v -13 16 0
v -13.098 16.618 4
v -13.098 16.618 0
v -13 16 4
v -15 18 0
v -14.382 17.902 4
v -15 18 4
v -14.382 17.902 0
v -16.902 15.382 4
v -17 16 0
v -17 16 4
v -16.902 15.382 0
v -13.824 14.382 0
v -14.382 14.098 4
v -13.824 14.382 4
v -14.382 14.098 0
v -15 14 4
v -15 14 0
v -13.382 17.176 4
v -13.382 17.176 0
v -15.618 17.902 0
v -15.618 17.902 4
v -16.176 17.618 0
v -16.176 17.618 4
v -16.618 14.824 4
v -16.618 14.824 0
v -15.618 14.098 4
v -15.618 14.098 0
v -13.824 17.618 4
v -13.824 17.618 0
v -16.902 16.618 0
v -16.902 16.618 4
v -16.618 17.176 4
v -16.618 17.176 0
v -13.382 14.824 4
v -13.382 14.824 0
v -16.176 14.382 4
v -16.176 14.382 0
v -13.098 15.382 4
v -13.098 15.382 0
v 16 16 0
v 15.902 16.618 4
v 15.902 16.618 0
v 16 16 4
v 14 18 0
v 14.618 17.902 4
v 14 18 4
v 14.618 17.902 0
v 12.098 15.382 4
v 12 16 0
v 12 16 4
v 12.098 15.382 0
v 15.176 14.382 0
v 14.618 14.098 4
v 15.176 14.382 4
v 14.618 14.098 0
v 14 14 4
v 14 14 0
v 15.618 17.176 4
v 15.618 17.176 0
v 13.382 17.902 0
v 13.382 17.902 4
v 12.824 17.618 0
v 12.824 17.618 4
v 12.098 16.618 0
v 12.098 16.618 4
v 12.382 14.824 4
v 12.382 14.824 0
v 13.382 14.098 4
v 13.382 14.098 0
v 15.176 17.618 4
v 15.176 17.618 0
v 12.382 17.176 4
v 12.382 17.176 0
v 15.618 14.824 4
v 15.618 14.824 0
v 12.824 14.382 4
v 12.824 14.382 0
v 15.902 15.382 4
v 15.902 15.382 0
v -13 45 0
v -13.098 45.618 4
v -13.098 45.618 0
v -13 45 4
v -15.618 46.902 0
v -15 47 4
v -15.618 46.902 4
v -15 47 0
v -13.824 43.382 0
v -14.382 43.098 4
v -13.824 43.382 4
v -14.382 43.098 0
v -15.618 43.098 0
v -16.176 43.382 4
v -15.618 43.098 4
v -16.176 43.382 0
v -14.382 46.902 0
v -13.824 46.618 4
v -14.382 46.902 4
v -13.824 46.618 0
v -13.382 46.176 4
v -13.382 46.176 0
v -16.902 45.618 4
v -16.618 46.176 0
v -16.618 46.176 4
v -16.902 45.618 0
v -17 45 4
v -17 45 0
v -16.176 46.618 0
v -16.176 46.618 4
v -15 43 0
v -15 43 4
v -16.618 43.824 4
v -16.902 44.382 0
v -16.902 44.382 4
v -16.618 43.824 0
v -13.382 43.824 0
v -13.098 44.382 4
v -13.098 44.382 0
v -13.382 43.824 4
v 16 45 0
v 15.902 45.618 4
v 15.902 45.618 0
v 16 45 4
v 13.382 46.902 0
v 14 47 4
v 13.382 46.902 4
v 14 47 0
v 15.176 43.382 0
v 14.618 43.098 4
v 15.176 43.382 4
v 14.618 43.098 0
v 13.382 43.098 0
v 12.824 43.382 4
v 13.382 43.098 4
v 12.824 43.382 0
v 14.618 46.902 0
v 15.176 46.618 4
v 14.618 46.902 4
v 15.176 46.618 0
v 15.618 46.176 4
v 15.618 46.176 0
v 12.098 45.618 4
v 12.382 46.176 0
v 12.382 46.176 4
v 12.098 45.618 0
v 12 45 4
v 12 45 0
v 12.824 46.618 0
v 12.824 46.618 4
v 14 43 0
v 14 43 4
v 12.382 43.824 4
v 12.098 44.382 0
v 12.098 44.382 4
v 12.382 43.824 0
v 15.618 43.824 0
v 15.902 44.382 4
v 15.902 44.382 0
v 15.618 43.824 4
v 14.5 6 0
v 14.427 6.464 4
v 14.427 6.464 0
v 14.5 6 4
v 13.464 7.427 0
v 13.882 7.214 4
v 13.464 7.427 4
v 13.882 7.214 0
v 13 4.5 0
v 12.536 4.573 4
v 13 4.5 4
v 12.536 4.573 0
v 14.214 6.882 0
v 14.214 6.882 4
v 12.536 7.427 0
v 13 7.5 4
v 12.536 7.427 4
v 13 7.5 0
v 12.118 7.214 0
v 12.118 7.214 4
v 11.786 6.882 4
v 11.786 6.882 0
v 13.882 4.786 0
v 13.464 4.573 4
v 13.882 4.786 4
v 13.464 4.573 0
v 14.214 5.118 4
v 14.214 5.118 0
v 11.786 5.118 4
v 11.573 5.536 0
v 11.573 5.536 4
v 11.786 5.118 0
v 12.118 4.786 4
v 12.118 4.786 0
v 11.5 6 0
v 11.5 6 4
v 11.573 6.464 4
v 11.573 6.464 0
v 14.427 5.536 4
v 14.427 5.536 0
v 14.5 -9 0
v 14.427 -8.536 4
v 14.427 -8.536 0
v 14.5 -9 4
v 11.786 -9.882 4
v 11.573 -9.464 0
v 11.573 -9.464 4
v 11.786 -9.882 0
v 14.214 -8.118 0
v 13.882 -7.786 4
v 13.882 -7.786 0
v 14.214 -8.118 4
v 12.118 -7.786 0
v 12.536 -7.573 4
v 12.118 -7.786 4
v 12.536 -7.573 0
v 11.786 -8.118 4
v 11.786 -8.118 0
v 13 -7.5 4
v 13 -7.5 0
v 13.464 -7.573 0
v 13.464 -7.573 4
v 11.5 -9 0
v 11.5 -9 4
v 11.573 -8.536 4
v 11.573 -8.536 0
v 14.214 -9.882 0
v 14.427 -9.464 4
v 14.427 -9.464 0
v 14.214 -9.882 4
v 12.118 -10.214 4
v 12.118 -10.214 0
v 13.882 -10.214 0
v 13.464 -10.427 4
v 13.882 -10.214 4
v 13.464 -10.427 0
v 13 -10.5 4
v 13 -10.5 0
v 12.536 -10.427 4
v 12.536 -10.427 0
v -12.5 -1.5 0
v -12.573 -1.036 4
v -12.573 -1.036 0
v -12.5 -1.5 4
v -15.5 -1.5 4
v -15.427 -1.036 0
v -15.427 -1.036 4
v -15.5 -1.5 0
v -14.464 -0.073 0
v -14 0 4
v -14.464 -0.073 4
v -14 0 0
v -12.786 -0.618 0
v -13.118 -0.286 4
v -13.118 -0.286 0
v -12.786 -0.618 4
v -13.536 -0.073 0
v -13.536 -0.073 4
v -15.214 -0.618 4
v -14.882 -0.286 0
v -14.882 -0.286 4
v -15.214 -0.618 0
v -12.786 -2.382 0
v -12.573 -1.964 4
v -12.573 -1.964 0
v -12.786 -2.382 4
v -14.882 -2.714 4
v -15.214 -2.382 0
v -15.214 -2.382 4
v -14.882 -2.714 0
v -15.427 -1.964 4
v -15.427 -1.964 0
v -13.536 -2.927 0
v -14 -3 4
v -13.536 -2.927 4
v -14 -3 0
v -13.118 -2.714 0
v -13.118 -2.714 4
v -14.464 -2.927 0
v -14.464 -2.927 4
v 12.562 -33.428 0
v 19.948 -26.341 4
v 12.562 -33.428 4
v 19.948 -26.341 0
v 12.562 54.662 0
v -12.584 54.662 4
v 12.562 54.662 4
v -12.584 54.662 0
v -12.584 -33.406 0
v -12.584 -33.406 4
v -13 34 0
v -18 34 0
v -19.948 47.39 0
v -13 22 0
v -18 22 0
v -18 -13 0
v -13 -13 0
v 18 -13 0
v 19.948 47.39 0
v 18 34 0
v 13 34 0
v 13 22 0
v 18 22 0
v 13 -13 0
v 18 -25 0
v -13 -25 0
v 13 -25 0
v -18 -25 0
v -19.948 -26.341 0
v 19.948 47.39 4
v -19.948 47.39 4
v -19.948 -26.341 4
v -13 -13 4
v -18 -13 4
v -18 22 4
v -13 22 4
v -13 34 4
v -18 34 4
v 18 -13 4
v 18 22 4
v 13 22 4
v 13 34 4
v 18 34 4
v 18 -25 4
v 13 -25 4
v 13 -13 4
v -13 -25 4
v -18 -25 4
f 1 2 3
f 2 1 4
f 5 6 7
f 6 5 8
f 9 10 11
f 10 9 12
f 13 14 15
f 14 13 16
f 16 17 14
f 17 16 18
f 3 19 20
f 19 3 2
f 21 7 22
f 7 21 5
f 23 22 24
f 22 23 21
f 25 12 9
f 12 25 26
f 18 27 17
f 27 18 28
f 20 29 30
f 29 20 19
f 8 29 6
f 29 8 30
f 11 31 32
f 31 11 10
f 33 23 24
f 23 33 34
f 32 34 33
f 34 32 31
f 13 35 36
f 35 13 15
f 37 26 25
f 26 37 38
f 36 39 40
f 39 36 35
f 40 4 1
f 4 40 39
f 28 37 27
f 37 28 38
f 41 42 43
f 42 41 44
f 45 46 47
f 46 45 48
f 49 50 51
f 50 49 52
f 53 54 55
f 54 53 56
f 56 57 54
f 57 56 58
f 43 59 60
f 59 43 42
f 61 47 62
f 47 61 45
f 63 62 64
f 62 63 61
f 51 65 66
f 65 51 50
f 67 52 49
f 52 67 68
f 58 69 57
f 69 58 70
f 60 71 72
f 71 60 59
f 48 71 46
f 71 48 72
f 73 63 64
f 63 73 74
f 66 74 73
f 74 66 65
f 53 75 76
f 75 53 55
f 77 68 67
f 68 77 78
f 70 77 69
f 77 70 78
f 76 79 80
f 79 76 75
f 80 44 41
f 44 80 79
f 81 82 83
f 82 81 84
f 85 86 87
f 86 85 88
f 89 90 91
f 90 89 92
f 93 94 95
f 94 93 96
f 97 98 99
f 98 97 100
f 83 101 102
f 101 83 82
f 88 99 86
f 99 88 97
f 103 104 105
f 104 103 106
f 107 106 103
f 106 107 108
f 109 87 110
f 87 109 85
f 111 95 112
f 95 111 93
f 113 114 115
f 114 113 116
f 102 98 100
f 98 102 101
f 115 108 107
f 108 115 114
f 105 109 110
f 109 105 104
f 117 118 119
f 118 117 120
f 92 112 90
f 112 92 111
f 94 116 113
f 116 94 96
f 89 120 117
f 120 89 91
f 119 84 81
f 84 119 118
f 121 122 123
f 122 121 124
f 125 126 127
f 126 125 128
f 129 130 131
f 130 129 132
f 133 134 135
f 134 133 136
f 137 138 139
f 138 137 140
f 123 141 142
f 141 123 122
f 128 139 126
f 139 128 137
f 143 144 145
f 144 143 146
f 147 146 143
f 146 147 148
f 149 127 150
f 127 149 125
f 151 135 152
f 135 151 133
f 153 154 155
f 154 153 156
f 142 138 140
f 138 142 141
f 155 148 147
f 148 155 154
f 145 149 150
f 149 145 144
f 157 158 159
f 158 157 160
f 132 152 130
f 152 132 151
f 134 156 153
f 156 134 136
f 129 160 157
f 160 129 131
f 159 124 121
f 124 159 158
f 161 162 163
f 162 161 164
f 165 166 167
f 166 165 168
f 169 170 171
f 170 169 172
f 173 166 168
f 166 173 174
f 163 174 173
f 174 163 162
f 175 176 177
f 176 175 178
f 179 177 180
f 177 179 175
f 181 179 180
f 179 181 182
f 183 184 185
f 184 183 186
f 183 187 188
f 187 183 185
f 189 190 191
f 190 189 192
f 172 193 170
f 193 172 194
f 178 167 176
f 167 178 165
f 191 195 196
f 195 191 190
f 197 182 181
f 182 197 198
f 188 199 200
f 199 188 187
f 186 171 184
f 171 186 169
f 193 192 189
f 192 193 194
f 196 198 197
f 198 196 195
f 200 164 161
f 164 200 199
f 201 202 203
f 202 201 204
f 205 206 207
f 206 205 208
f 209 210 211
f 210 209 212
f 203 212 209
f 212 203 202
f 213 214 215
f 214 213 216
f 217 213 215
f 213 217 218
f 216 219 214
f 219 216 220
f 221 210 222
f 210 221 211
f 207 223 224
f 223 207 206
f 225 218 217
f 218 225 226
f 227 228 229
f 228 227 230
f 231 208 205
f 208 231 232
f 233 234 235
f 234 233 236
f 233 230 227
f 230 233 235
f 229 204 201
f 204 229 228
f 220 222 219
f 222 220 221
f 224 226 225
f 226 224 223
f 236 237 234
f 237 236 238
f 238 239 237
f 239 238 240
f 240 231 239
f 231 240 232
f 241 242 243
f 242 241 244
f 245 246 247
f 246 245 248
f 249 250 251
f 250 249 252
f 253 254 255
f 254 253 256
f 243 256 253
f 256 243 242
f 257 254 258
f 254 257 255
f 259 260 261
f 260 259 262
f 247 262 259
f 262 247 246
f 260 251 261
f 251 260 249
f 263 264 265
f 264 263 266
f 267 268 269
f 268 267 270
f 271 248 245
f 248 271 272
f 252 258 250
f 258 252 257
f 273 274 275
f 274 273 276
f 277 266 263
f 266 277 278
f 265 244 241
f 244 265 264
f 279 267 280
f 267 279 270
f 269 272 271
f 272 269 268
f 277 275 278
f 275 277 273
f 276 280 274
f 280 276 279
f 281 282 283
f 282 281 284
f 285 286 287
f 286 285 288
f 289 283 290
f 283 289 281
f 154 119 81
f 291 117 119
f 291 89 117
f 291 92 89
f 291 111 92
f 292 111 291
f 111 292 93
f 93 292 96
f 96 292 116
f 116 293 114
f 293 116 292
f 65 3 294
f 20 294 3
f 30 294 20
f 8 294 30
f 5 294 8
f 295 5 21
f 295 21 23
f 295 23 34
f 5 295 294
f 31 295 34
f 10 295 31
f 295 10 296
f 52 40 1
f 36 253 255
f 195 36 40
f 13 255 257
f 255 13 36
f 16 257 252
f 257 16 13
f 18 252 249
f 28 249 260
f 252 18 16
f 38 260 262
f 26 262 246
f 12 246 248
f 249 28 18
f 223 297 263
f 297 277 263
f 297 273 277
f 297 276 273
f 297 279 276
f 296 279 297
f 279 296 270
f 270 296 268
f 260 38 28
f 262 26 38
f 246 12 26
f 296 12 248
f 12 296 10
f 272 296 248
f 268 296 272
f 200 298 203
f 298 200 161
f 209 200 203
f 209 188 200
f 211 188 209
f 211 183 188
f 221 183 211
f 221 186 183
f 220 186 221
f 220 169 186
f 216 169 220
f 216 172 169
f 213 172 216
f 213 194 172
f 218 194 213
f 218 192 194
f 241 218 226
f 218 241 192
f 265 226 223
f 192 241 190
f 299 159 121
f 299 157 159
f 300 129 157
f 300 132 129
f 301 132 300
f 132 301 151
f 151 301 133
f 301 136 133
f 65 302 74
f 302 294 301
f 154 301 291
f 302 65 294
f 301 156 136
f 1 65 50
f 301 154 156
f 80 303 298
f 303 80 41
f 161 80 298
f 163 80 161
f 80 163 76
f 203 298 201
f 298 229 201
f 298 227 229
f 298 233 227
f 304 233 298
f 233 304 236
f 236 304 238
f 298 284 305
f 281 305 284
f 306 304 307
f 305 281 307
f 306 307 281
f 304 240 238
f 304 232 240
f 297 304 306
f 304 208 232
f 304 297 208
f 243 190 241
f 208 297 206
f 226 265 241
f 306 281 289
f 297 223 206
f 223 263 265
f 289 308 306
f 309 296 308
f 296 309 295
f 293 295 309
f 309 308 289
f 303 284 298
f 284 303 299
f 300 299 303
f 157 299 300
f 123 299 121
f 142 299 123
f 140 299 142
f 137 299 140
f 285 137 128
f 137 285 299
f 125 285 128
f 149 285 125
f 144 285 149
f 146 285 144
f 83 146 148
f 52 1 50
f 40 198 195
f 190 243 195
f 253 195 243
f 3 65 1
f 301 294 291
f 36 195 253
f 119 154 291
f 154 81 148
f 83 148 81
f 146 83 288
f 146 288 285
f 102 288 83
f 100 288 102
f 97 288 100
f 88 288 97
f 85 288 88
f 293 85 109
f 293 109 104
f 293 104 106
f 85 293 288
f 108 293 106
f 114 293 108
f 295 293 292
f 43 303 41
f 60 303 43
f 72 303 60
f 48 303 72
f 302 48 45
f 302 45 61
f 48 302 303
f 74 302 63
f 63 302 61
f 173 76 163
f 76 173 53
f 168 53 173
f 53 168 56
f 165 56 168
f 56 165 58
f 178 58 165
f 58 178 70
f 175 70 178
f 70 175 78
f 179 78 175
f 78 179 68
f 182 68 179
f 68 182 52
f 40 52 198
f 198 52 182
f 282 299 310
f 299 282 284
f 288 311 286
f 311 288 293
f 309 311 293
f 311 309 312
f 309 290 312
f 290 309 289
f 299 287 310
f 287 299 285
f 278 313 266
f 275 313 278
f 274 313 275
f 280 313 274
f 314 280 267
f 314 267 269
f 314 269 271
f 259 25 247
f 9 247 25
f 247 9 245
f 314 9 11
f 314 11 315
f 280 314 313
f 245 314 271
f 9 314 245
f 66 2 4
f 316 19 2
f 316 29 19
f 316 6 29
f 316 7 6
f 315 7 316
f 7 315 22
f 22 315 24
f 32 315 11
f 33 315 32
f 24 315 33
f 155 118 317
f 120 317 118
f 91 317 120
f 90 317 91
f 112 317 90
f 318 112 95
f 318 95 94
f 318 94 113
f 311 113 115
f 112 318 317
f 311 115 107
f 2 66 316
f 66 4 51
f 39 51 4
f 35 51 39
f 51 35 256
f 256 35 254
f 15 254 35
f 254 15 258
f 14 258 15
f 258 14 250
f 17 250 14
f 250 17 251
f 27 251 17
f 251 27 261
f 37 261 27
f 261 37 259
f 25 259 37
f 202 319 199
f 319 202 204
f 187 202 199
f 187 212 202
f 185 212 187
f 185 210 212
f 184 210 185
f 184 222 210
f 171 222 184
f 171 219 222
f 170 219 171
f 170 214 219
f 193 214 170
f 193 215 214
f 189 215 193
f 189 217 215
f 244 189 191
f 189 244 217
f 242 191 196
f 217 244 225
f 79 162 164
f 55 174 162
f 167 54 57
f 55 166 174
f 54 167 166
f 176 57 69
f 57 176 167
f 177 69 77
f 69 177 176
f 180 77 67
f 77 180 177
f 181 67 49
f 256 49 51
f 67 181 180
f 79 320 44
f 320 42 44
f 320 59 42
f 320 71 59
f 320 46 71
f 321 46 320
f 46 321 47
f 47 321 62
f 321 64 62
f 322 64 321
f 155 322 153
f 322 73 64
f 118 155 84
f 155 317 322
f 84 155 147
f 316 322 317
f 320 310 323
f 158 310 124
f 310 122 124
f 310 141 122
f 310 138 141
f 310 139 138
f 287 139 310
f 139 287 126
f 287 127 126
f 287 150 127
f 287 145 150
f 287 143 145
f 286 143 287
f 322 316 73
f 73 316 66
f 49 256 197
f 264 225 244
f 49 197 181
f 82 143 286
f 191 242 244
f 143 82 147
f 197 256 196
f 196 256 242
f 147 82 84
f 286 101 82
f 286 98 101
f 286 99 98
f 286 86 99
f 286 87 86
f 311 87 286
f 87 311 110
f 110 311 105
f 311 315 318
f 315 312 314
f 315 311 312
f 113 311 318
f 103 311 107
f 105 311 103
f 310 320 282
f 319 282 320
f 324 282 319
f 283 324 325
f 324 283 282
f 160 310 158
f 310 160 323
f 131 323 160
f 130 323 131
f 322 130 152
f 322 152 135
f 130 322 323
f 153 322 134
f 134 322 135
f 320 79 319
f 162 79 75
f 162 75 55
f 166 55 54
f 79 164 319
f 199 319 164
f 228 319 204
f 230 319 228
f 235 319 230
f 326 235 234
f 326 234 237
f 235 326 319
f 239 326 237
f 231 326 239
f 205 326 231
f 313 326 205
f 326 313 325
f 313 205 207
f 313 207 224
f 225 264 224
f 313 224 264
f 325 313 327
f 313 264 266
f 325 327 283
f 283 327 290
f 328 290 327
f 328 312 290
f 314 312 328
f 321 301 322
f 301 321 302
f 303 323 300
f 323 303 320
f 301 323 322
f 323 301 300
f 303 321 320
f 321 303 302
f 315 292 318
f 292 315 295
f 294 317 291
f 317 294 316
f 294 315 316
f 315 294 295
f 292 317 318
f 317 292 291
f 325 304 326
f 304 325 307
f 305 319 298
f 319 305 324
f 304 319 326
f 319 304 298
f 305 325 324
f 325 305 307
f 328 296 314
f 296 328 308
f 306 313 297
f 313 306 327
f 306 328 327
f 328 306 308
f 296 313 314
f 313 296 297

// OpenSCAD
// RPi Case Base
// by Ming-Dao Chia
// for the Borevitz Lab, Australian National University

// Settings
circle_res = 20; // can increase for final export
case_height = 31; // increase if adding lots of shields
rounding=2; // for square ports, less = sharper corners

// Constants
fudge=0.2; // just for the tongue
RPi_space_height = 4; // how high the screw spacers on the bottom are
RPi_screws = 3; // size of RPi screws
RPi_screw_hole_thickness=0.82; // spacer wall thickness

// configurable hole for screws
module screwHole(diameter, x, y){ 
    translate([x,y,-2])
    cylinder(d=diameter, h=10, $fn=circle_res);
}

// form the outer wall of bottom screw spacers
module spacer(x,y){
    translate([x,y,2])
            cylinder(d=RPi_screws+(RPi_screw_hole_thickness*2),h=RPi_space_height, $fn=circle_res);
}

// rounded rectangle module
module sidePort(x,y, rounding=rounding){
    rotate([0,90,0])
    minkowski()
    {
      cube([y-rounding*2,x-rounding*2,1],center=true);
      cylinder(r=rounding,h=5, $fn=circle_res);
    }
}

// larger 180 camera
module bigCamera(xpos,ypos){
    screwHole(4, xpos,ypos);
    screwHole(4, xpos+29,ypos);
    screwHole(4, xpos,ypos+29);
    screwHole(4, xpos+29,ypos+29);
}

// fits standard RPi camera
module smallCamera(xpos,ypos){
    screwHole(3,xpos,ypos);
    screwHole(3,xpos+21,ypos);
    screwHole(3,xpos,ypos+13);
    screwHole(3,xpos+21,ypos+13);
}

// fits current temperature/humidity sensor
module tempHumiditySensor(xpos,ypos){
    screwHole(3, xpos,ypos);
    screwHole(3, xpos,ypos-15);
    screwHole(3,xpos-27,ypos-7.5);
}

module mounting_flap(h)
{
  difference(){
  scale([25.4/90, -35/90, 1]) union()
  {
    difference()
    {
       linear_extrude(height=h) // Autogenerated from Inkscape
         polygon([[-44.590820,-140.560545],[-70.682620,-121.859375],[-70.682620,67.734375],[-44.590820,85.902345],[44.510740,85.958985],[70.682620,67.734375],[70.682620,-121.859375],[44.510740,-140.560545]]);
    }
  }
  slot_width=12;
  slot_depth=5;
  translate([13,22, -fudge])
  cube([slot_depth,slot_width,h+2*fudge]);
  translate([-18,22, -fudge])
  cube([slot_depth,slot_width,h+2*fudge]);
  translate([13,-25, -fudge])
  cube([slot_depth,slot_width,h+2*fudge]);
  translate([-18,-25, -fudge])
  cube([slot_depth,slot_width,h+2*fudge]);
  translate([-25,-10,0])
  bigCamera(10,26);
  tempHumiditySensor(13,6);
  }
}


mounting_flap(4);
